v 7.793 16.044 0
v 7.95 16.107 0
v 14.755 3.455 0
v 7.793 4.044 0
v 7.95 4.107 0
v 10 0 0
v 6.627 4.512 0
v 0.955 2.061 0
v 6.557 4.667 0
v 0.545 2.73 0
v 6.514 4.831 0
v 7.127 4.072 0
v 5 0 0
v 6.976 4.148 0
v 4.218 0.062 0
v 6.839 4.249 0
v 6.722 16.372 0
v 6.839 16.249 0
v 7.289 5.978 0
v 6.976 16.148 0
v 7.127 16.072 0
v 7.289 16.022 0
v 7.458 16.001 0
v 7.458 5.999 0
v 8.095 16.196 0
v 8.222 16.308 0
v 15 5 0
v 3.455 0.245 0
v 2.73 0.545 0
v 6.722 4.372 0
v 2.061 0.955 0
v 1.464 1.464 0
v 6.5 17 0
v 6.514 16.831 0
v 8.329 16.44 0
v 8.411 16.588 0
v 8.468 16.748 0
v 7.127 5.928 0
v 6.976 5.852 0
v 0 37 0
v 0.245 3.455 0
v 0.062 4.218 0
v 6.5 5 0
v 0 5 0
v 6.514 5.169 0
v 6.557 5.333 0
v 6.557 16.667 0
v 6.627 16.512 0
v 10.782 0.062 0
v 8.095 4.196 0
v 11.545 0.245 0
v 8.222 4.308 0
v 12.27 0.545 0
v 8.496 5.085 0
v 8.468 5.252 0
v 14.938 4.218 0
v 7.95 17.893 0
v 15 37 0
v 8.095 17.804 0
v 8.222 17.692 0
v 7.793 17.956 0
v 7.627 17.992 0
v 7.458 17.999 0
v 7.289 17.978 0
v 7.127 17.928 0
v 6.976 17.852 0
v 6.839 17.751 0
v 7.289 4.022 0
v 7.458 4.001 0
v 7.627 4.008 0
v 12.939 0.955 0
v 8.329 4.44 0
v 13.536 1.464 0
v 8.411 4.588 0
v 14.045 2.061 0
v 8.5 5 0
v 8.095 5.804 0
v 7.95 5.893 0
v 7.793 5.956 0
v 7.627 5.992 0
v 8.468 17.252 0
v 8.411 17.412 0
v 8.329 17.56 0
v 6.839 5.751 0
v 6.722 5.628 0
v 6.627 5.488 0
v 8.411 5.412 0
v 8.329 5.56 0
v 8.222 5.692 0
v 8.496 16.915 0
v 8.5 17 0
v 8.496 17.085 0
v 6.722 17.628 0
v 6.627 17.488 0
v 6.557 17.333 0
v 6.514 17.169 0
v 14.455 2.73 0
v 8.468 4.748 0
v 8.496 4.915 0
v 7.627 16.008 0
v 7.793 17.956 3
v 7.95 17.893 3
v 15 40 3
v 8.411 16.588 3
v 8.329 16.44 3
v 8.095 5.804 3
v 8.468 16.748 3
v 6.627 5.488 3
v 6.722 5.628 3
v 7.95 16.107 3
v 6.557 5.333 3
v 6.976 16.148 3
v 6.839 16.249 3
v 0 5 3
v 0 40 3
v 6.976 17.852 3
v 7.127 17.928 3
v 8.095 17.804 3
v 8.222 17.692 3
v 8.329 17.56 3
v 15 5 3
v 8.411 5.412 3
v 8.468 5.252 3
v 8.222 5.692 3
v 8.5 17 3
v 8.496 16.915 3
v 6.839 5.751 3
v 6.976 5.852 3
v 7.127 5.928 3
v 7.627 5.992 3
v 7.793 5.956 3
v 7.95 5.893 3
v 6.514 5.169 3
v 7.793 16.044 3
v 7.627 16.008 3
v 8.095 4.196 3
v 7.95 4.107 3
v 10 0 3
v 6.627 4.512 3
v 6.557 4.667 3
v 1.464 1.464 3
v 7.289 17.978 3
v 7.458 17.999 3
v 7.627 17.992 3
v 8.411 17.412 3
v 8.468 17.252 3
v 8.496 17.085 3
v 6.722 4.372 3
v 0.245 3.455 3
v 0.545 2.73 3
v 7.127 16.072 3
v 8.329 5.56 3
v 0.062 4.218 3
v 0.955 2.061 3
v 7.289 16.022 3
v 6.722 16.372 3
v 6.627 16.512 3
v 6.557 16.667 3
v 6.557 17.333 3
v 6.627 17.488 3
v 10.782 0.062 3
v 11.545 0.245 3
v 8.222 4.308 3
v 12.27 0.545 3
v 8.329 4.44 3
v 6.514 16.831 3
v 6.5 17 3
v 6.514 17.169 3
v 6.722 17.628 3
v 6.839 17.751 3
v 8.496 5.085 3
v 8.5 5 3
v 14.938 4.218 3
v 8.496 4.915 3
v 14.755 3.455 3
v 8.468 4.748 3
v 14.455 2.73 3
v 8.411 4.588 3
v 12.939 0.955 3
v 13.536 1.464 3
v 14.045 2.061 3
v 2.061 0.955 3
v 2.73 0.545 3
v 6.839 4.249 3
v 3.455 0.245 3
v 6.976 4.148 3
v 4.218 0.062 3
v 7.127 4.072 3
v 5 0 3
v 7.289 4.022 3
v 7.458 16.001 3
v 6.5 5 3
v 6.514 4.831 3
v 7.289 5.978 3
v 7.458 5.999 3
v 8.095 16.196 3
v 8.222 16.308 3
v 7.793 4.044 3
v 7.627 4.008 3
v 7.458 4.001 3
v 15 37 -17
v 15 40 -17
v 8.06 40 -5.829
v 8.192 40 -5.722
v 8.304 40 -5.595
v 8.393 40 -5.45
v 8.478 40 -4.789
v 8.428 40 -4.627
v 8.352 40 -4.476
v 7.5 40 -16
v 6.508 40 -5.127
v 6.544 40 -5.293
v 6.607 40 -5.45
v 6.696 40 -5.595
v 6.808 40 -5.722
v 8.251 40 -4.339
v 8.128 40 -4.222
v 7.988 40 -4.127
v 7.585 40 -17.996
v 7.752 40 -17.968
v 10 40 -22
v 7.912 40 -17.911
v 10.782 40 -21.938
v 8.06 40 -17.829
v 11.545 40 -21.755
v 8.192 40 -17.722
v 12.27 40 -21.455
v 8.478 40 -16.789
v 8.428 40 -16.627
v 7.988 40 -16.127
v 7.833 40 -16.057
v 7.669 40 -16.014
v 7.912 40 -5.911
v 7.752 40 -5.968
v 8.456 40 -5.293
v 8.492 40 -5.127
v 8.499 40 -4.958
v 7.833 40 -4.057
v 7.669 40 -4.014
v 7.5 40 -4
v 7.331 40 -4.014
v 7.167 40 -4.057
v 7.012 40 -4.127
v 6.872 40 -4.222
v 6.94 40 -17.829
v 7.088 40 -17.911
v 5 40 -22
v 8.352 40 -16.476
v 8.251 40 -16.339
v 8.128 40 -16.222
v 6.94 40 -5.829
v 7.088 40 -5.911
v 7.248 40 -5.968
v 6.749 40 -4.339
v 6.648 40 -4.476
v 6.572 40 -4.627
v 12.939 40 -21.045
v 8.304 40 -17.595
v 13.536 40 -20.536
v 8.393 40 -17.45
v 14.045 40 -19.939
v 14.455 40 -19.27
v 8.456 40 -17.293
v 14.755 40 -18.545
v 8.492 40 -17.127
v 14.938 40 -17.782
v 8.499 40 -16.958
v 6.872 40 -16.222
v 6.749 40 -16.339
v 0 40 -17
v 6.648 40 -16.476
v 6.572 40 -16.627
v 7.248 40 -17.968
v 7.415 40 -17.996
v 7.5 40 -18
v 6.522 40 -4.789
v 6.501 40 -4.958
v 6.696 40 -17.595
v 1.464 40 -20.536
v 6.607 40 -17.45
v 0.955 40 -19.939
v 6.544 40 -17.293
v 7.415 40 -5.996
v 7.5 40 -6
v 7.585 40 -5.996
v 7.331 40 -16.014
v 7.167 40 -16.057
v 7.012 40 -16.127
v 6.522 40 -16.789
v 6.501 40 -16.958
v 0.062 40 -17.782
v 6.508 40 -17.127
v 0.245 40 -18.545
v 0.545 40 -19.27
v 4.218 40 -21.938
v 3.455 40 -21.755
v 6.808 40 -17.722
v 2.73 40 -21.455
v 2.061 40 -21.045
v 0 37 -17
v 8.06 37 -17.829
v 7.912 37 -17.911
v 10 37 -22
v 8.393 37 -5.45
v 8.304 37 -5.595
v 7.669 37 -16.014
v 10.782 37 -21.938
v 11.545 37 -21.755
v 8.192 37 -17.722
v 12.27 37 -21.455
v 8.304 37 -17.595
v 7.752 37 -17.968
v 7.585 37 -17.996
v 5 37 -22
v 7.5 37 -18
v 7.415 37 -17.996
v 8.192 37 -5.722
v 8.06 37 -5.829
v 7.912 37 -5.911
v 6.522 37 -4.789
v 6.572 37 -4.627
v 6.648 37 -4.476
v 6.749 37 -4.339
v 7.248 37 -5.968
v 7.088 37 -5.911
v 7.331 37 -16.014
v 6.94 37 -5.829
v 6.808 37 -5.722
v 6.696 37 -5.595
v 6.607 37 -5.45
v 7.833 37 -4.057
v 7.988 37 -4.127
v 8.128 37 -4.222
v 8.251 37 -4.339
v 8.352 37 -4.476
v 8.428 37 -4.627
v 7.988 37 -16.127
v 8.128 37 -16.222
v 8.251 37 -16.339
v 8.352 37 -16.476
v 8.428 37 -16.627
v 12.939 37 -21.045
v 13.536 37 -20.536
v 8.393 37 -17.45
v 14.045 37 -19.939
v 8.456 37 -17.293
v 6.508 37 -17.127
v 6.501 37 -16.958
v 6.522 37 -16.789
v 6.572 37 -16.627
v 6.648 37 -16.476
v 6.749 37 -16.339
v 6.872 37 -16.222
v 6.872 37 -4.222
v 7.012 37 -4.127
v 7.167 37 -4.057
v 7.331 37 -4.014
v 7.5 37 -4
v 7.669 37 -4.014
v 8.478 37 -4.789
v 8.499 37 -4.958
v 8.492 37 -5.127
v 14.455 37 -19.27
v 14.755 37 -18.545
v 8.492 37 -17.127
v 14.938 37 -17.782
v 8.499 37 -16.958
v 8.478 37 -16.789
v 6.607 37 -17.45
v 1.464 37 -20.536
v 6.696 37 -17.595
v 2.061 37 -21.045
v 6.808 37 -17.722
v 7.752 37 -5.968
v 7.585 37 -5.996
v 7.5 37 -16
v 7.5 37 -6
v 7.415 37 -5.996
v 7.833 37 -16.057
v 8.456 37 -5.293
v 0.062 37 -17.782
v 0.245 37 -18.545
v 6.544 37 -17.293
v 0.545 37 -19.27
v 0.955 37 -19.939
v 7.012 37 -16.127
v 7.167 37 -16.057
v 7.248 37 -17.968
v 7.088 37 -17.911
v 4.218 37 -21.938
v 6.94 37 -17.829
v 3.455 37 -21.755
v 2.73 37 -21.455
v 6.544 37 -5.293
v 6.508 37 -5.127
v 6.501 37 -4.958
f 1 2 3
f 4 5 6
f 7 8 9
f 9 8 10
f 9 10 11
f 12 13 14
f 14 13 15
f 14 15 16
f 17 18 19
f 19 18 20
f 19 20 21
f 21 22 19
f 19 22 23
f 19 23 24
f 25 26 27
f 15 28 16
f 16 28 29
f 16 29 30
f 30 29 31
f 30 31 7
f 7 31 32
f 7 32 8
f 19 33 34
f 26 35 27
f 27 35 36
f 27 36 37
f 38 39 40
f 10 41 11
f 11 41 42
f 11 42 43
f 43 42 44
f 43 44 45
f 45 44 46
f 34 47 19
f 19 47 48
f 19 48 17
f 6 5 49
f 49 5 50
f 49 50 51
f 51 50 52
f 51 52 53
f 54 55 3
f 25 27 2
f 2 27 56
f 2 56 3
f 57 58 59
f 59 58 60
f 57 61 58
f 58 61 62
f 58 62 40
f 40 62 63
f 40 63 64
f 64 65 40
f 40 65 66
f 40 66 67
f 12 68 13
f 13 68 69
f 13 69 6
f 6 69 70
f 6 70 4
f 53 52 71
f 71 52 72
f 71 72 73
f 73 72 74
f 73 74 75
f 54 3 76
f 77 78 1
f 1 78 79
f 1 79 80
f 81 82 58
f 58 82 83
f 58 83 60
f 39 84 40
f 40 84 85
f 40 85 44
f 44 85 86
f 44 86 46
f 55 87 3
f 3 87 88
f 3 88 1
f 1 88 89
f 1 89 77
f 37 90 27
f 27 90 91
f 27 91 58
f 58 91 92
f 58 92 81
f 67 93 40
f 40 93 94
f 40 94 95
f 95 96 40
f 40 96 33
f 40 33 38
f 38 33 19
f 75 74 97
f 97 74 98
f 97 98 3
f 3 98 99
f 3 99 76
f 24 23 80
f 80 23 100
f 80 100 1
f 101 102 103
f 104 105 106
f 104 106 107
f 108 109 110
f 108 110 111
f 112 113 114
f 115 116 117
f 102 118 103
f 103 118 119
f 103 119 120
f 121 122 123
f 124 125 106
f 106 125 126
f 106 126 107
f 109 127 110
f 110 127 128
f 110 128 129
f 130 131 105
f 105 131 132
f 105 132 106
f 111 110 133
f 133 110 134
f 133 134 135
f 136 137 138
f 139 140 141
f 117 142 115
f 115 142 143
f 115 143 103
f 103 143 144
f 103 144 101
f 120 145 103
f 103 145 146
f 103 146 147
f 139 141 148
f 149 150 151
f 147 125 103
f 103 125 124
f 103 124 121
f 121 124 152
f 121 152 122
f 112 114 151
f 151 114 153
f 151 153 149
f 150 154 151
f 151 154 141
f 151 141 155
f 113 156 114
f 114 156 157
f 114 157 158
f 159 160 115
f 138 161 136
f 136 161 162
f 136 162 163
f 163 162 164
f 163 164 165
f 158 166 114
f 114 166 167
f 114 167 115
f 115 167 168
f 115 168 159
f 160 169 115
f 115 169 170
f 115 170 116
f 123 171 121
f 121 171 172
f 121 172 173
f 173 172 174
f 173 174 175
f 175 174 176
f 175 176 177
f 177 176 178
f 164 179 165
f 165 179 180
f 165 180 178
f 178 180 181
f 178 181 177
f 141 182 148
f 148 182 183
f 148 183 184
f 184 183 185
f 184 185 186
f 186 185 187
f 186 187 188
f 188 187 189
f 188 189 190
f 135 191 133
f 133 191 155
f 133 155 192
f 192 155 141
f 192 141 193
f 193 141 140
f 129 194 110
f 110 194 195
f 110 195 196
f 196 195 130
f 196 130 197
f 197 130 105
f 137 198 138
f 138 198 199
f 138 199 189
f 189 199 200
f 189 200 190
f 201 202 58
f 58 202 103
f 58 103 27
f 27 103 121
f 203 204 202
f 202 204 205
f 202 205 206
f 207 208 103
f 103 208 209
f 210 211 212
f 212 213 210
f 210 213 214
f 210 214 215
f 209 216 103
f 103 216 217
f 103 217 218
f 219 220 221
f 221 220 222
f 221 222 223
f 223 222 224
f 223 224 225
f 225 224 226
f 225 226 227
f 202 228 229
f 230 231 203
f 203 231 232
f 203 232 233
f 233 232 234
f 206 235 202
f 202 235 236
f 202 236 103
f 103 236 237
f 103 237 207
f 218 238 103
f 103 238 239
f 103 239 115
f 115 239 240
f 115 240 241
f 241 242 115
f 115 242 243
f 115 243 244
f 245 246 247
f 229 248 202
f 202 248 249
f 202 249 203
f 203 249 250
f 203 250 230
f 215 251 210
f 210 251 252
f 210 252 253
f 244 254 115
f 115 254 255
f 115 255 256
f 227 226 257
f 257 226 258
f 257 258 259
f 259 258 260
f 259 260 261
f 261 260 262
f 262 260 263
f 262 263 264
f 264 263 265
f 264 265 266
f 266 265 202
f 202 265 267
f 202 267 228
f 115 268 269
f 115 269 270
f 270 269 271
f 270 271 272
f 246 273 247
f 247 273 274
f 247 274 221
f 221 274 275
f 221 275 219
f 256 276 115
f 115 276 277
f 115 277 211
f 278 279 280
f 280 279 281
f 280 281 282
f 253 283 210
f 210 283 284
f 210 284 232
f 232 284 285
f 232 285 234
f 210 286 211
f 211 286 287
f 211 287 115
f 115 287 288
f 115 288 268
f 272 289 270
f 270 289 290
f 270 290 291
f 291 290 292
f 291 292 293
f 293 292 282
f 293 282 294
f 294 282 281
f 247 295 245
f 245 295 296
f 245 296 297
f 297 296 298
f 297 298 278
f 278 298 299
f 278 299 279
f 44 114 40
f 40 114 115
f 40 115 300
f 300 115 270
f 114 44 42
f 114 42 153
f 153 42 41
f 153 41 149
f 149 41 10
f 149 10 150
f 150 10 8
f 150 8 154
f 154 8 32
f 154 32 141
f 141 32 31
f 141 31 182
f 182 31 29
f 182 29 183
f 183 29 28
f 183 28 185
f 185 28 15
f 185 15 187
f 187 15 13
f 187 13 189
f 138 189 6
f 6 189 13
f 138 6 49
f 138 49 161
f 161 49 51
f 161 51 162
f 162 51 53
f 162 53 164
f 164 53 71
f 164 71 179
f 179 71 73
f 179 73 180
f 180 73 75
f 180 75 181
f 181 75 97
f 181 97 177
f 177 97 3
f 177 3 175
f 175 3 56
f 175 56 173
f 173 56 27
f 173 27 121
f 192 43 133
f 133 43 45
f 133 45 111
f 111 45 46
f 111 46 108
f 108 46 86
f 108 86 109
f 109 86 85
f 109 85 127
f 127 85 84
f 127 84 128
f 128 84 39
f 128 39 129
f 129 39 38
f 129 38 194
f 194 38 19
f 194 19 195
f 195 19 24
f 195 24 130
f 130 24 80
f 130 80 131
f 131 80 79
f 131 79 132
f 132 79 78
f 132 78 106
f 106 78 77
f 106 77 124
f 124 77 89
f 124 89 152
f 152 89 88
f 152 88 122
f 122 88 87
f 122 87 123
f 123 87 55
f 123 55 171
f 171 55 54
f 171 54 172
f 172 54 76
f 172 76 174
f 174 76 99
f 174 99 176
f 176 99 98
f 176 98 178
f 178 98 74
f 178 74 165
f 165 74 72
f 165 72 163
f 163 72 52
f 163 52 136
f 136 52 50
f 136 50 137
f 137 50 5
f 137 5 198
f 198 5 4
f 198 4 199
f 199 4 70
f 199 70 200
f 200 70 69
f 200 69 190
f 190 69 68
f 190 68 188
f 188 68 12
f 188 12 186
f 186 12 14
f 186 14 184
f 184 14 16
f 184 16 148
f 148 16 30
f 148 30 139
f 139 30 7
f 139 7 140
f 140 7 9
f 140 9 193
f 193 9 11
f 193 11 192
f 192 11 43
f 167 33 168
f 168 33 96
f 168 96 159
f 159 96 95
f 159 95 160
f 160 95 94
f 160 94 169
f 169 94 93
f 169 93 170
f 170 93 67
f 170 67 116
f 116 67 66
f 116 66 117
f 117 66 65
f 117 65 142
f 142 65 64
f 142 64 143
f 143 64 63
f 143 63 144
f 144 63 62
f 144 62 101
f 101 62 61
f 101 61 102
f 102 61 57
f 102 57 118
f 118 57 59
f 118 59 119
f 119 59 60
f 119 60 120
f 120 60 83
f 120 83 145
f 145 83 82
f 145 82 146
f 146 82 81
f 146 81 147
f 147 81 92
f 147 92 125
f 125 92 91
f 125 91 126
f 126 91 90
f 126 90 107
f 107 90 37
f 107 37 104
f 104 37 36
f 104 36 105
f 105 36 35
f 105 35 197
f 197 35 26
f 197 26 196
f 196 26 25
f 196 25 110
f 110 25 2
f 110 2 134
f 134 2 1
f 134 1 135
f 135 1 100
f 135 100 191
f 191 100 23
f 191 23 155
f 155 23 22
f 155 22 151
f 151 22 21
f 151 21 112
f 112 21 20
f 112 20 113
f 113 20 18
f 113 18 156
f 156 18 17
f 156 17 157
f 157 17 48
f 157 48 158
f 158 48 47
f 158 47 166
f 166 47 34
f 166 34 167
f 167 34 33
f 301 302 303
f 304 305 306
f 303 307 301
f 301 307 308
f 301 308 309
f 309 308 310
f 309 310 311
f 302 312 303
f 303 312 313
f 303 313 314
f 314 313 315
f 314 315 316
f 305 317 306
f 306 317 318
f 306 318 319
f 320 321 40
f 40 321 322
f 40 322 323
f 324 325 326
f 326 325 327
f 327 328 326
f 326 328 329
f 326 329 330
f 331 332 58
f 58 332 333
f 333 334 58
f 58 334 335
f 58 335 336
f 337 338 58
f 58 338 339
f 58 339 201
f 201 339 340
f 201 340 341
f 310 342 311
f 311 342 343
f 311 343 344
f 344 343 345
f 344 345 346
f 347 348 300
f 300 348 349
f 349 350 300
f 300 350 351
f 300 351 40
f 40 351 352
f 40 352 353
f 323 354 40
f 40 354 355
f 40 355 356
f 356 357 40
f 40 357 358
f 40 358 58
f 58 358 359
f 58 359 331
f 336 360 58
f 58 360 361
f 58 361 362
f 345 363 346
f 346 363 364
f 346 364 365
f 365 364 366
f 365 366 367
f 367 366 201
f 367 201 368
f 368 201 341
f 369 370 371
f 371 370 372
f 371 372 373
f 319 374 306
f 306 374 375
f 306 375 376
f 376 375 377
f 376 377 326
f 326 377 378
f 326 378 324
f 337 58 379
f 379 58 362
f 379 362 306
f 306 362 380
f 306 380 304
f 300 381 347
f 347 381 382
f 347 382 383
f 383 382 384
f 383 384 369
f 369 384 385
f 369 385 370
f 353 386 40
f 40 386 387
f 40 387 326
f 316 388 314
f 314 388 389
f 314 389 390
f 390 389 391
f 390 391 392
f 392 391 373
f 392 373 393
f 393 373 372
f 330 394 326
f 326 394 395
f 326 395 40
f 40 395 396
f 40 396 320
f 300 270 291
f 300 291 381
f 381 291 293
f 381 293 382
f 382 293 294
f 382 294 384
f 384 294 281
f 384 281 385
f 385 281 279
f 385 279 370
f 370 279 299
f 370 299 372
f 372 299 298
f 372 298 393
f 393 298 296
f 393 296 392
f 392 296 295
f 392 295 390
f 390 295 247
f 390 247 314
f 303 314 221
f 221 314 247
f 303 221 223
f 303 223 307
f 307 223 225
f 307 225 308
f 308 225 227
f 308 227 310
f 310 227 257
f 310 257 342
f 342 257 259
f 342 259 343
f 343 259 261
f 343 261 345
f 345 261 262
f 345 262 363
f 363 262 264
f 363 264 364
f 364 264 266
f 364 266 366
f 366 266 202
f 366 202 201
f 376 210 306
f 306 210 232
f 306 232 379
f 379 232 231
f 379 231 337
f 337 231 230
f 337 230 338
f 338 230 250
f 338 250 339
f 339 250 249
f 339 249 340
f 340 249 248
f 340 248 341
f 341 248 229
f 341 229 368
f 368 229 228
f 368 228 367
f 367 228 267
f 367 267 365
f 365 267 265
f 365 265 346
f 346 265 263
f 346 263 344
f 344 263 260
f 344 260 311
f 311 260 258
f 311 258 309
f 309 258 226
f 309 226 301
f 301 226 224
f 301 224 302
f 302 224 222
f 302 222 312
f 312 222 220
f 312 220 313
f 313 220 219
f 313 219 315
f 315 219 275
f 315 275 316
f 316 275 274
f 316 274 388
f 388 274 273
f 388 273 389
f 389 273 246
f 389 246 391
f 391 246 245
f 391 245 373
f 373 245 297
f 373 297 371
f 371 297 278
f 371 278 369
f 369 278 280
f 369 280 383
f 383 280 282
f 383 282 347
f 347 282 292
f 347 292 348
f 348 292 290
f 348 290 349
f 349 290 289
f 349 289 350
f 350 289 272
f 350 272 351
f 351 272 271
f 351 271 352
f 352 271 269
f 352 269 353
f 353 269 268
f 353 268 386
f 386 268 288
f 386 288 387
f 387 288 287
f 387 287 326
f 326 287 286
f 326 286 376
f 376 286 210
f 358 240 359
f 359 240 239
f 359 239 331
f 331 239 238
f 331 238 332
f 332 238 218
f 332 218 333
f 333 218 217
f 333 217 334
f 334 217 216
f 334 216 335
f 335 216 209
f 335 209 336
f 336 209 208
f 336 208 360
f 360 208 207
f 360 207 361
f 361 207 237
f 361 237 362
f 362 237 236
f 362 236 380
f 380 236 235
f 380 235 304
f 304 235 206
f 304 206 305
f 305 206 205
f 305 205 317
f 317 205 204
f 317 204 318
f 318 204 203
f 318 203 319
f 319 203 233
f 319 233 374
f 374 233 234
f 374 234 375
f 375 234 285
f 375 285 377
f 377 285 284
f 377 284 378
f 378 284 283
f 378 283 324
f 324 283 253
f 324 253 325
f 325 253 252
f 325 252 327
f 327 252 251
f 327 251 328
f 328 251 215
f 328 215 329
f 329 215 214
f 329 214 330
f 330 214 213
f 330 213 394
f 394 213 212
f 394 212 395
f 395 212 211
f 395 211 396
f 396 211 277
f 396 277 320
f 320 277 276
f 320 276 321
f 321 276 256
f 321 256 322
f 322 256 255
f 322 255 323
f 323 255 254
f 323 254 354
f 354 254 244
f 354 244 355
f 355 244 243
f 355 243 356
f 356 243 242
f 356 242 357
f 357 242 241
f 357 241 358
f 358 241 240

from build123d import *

# Parameters (mm, degrees)
SKETCH_1_R      = 1
EXTRUDE_1_DEPTH = 3
SKETCH_2_R      = 1
EXTRUDE_2_DEPTH = 3


with BuildPart() as part:
    # 草图1 → 凸台-拉伸1 (new body)
    with BuildSketch(Plane.XY):
        with BuildLine():
            Line((5, 0), (10, 0))
            ThreePointArc((10, 0), (13.535533906, 1.464466094), (15, 5))
            Line((15, 5), (15, 40))
            Line((15, 40), (0, 40))
            Line((0, 40), (0, 5))
            ThreePointArc((0, 5), (1.464466094, 1.464466094), (5, 0))
        make_face()
        with Locations((7.5, 5)):
            Circle(SKETCH_1_R, mode=Mode.SUBTRACT)
        with Locations((7.5, 17)):
            Circle(SKETCH_1_R, mode=Mode.SUBTRACT)
    extrude(amount=EXTRUDE_1_DEPTH)

    # 草图2 → 凸台-拉伸2 (add)
    with BuildSketch(Plane(origin=(0, 40, 0), x_dir=(-1, 0, 0), z_dir=(0, -1, 0))):
        with BuildLine():
            Line((-15, -3), (0, -3))
            Line((0, -3), (0, 17))
            ThreePointArc((0, 17), (-1.464466094, 20.535533906), (-5, 22))
            Line((-5, 22), (-10, 22))
            ThreePointArc((-10, 22), (-13.535533906, 20.535533906), (-15, 17))
            Line((-15, 17), (-15, -3))
        make_face()
        with Locations((-7.5, 17)):
            Circle(SKETCH_2_R, mode=Mode.SUBTRACT)
        with Locations((-7.5, 5)):
            Circle(SKETCH_2_R, mode=Mode.SUBTRACT)
    extrude(amount=EXTRUDE_2_DEPTH)


solid = part.part
